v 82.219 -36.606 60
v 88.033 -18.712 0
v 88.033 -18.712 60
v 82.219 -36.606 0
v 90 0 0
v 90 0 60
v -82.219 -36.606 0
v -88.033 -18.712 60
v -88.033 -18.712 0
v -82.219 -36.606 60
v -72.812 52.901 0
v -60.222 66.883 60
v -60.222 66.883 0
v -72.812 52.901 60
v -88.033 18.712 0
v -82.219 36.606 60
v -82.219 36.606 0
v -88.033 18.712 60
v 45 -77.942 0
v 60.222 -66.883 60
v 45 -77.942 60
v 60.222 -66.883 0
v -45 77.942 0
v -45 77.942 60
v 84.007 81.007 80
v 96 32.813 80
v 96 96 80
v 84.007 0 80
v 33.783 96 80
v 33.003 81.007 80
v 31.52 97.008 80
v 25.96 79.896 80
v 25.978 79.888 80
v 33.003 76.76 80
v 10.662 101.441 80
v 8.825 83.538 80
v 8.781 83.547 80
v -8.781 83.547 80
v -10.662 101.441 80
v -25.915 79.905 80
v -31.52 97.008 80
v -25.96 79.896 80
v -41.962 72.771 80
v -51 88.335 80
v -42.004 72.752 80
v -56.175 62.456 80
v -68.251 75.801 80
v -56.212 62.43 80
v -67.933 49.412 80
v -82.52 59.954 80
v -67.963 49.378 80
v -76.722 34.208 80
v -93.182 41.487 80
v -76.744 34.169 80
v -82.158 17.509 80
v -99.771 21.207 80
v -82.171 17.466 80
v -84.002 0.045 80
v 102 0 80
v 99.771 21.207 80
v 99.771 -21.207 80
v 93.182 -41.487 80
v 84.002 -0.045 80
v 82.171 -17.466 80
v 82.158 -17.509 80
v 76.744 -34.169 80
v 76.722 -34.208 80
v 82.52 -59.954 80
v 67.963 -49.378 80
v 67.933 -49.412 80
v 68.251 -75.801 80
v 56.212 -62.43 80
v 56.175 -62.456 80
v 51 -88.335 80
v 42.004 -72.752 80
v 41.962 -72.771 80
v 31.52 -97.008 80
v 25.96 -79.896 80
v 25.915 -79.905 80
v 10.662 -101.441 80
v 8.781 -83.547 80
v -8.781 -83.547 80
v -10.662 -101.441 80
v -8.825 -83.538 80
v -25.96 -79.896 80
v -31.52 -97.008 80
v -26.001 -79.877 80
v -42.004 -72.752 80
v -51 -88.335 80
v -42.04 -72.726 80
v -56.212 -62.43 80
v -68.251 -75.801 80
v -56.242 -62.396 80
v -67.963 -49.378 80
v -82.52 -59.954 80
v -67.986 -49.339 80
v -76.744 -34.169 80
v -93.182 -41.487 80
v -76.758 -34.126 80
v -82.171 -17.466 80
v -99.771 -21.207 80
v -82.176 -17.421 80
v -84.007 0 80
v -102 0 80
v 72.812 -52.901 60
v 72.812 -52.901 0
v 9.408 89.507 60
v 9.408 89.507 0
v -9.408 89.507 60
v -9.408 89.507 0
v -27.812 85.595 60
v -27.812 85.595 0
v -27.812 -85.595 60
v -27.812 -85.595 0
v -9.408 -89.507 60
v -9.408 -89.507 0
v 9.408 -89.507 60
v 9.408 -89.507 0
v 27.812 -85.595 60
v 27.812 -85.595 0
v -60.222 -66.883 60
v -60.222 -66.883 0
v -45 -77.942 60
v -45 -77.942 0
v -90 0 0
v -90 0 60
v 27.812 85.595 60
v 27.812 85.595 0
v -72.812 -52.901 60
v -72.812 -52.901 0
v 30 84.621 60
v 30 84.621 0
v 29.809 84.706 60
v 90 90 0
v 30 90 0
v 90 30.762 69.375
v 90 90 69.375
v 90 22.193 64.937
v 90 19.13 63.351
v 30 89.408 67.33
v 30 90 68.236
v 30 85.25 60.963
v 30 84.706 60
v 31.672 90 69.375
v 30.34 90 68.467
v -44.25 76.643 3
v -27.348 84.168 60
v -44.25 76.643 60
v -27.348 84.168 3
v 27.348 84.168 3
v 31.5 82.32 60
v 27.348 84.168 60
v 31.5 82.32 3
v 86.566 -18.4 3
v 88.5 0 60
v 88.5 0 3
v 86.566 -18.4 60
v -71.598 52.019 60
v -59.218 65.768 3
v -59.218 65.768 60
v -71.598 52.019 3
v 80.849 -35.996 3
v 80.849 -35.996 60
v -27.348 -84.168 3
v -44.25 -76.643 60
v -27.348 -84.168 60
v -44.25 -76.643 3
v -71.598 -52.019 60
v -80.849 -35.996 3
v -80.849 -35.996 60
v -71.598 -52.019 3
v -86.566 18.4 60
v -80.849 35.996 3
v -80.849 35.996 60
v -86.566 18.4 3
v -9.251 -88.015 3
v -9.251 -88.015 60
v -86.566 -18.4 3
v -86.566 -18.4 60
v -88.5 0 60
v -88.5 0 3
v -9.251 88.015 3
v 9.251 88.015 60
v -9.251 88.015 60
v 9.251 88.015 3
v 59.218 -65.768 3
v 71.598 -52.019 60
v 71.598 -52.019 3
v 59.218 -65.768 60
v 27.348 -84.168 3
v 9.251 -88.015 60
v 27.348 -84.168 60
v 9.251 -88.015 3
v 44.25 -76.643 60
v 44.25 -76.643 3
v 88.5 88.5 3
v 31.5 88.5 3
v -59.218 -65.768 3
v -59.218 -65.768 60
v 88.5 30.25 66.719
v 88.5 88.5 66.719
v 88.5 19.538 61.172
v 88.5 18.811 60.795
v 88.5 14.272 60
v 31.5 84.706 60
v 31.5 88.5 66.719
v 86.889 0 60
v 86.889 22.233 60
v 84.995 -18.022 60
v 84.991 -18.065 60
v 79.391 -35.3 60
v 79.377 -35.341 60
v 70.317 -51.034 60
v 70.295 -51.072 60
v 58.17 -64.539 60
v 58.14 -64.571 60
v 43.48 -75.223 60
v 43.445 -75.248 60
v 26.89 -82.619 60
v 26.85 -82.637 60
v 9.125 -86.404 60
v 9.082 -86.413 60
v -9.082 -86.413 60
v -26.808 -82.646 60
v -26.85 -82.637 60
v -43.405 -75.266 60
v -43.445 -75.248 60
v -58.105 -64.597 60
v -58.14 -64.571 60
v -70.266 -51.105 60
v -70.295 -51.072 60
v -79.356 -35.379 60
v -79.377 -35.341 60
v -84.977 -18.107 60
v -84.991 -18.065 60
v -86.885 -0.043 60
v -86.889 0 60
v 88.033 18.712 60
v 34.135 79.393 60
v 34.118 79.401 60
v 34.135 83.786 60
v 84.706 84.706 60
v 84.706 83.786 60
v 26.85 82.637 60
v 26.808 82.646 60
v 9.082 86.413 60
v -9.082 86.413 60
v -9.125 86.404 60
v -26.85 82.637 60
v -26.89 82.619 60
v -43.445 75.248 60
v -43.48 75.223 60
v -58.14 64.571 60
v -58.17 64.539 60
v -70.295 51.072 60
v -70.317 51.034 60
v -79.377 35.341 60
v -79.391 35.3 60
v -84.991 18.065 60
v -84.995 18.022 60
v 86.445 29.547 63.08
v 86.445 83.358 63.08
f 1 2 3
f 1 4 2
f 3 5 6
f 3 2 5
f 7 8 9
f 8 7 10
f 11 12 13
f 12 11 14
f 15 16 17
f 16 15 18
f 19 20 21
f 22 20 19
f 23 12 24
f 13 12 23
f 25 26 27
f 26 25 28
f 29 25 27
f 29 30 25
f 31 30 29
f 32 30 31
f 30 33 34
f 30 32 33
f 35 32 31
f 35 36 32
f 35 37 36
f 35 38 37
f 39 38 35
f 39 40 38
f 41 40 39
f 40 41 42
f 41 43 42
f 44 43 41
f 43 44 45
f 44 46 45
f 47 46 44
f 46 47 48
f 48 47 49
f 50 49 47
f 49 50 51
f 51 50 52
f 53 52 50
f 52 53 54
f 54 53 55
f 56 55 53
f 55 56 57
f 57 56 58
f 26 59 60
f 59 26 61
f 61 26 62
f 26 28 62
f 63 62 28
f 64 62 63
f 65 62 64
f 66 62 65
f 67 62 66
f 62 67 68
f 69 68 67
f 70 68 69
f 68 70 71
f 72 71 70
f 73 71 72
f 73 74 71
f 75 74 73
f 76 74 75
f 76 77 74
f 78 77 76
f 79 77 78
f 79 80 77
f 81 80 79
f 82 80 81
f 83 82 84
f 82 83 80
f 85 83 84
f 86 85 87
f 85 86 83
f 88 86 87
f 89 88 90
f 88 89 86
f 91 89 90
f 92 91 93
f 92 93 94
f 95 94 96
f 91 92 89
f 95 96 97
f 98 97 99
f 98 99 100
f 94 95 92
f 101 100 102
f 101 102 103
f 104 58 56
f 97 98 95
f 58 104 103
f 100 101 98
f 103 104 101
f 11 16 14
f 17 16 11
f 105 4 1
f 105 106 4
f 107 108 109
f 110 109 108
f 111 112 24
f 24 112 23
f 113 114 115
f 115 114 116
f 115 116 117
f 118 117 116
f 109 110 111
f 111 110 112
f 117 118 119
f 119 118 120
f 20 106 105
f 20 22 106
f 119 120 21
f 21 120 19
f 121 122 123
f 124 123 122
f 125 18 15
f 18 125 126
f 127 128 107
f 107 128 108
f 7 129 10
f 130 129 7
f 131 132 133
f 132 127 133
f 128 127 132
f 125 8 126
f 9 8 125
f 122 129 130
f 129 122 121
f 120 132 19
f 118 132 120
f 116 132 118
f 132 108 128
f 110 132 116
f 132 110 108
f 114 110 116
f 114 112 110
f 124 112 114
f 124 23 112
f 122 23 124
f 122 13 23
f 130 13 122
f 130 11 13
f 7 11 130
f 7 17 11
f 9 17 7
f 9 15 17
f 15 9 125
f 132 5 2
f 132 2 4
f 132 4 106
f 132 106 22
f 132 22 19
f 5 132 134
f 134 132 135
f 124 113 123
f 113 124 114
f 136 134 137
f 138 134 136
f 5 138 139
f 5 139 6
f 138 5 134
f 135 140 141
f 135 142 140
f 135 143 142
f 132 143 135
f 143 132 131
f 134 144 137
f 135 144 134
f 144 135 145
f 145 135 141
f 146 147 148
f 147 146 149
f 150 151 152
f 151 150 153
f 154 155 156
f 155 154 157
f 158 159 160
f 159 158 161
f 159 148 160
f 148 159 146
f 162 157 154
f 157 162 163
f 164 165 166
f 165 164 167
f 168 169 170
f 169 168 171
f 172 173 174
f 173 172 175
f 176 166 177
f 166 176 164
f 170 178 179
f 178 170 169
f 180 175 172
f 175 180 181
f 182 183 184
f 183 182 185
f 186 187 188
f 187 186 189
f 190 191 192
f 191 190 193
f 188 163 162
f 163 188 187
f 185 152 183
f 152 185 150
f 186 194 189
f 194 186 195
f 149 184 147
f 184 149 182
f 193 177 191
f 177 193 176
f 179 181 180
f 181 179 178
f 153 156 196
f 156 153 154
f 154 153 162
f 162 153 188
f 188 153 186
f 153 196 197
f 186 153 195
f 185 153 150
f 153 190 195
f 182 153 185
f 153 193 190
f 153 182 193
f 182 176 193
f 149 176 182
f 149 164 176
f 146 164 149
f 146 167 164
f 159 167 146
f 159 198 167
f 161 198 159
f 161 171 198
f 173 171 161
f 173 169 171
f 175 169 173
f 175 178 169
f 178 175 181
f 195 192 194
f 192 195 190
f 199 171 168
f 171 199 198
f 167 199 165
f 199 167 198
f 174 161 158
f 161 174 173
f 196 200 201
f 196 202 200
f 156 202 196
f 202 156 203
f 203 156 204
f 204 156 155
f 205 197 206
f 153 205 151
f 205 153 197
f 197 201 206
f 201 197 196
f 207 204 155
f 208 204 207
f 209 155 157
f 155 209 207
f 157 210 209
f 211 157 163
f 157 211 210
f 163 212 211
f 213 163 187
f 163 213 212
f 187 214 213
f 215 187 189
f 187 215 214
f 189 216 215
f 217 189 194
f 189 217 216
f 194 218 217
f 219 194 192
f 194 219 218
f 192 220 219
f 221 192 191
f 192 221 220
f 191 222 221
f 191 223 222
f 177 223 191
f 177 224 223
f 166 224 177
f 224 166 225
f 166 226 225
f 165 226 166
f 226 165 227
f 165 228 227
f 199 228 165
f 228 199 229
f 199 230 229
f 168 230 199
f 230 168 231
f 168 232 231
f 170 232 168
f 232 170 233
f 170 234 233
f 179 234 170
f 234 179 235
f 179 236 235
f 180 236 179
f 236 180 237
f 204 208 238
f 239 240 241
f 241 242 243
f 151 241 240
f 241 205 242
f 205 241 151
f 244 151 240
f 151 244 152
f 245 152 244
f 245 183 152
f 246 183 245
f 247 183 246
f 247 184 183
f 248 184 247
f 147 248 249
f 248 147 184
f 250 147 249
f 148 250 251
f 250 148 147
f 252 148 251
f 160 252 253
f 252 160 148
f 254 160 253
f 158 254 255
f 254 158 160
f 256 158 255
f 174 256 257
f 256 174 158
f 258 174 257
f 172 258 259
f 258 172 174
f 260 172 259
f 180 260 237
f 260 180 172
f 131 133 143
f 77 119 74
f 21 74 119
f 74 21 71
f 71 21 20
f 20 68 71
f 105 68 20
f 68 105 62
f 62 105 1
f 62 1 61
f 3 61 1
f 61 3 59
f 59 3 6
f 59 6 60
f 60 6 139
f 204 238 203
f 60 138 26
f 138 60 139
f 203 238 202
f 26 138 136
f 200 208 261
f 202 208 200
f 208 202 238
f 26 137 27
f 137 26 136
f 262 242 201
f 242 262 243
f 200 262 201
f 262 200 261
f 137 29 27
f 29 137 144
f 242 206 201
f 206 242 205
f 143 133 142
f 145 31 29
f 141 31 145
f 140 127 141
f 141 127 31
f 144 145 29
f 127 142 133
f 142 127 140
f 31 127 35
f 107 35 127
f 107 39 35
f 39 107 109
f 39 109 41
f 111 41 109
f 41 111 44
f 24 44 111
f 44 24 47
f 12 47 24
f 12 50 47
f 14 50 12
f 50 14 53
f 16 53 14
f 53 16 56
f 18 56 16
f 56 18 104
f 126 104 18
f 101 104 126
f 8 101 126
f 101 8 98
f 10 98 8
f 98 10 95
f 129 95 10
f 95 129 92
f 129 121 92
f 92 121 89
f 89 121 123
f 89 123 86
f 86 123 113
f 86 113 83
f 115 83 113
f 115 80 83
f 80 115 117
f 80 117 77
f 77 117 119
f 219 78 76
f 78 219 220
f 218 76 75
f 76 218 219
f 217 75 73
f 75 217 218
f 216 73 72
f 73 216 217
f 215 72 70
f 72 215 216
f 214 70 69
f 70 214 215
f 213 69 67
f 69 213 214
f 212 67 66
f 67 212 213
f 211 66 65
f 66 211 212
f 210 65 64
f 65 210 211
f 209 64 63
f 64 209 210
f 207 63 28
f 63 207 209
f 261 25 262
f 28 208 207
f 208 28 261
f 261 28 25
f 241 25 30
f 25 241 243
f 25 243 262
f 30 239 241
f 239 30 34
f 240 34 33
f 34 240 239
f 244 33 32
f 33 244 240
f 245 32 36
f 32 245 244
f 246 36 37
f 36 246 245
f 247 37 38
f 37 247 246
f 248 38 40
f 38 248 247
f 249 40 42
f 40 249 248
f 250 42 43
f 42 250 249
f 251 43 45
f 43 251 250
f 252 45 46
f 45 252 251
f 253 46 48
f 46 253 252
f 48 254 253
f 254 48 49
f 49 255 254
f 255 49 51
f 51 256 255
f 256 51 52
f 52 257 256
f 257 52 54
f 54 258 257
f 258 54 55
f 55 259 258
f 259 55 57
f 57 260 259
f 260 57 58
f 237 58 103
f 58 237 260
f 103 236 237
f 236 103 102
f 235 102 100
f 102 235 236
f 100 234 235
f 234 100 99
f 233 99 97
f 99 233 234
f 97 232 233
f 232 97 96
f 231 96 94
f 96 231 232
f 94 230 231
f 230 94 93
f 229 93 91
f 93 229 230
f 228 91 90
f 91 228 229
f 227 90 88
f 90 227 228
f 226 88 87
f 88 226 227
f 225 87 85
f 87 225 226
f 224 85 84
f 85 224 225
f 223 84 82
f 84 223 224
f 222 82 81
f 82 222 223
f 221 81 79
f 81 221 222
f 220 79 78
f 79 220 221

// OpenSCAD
ch=80;
cod=180;
platew=60;
wall=3;
eps=0.1;

module snail(ch, cod, platew) {
    cylinder(h=ch, d=cod);
    translate([cod/2-platew, 0, 0])
        cube([platew, cod/2, ch]);
}

if(1){
color("grey", 0.9)
difference() {
    snail(ch, cod, platew);
    translate([0, 0, wall]) 
        snail(ch-wall+eps, cod-wall, platew-wall);
}
}



translate([0,0, ch])
mirror([0, 0, 1])
color("red")
difference(){
    linear_extrude(20, scale=cod/(cod+8*wall))
    union(){
        circle(d=cod+8*wall);
        translate([cod/2-platew, 0, 0])
            square([platew+2*wall, cod/2+2*wall]);
    };
    translate([0, 0, -eps/2])
    linear_extrude(20+eps, scale=cod/(cod-2*wall))
    union(){
        circle(d=cod-4*wall);
        translate([cod/2-platew+wall, 0, 0])
            square([platew+-3*wall, cod/2-3*wall]);
    };
    /*
    union(){
        circle(d=cod-4*wall);
        translate([cod/2-platew, 0, 0])
            square([platew-4*wall, cod/2-4*wall]);
    }
    // circle(d=cod-4*wall);
    */
}
